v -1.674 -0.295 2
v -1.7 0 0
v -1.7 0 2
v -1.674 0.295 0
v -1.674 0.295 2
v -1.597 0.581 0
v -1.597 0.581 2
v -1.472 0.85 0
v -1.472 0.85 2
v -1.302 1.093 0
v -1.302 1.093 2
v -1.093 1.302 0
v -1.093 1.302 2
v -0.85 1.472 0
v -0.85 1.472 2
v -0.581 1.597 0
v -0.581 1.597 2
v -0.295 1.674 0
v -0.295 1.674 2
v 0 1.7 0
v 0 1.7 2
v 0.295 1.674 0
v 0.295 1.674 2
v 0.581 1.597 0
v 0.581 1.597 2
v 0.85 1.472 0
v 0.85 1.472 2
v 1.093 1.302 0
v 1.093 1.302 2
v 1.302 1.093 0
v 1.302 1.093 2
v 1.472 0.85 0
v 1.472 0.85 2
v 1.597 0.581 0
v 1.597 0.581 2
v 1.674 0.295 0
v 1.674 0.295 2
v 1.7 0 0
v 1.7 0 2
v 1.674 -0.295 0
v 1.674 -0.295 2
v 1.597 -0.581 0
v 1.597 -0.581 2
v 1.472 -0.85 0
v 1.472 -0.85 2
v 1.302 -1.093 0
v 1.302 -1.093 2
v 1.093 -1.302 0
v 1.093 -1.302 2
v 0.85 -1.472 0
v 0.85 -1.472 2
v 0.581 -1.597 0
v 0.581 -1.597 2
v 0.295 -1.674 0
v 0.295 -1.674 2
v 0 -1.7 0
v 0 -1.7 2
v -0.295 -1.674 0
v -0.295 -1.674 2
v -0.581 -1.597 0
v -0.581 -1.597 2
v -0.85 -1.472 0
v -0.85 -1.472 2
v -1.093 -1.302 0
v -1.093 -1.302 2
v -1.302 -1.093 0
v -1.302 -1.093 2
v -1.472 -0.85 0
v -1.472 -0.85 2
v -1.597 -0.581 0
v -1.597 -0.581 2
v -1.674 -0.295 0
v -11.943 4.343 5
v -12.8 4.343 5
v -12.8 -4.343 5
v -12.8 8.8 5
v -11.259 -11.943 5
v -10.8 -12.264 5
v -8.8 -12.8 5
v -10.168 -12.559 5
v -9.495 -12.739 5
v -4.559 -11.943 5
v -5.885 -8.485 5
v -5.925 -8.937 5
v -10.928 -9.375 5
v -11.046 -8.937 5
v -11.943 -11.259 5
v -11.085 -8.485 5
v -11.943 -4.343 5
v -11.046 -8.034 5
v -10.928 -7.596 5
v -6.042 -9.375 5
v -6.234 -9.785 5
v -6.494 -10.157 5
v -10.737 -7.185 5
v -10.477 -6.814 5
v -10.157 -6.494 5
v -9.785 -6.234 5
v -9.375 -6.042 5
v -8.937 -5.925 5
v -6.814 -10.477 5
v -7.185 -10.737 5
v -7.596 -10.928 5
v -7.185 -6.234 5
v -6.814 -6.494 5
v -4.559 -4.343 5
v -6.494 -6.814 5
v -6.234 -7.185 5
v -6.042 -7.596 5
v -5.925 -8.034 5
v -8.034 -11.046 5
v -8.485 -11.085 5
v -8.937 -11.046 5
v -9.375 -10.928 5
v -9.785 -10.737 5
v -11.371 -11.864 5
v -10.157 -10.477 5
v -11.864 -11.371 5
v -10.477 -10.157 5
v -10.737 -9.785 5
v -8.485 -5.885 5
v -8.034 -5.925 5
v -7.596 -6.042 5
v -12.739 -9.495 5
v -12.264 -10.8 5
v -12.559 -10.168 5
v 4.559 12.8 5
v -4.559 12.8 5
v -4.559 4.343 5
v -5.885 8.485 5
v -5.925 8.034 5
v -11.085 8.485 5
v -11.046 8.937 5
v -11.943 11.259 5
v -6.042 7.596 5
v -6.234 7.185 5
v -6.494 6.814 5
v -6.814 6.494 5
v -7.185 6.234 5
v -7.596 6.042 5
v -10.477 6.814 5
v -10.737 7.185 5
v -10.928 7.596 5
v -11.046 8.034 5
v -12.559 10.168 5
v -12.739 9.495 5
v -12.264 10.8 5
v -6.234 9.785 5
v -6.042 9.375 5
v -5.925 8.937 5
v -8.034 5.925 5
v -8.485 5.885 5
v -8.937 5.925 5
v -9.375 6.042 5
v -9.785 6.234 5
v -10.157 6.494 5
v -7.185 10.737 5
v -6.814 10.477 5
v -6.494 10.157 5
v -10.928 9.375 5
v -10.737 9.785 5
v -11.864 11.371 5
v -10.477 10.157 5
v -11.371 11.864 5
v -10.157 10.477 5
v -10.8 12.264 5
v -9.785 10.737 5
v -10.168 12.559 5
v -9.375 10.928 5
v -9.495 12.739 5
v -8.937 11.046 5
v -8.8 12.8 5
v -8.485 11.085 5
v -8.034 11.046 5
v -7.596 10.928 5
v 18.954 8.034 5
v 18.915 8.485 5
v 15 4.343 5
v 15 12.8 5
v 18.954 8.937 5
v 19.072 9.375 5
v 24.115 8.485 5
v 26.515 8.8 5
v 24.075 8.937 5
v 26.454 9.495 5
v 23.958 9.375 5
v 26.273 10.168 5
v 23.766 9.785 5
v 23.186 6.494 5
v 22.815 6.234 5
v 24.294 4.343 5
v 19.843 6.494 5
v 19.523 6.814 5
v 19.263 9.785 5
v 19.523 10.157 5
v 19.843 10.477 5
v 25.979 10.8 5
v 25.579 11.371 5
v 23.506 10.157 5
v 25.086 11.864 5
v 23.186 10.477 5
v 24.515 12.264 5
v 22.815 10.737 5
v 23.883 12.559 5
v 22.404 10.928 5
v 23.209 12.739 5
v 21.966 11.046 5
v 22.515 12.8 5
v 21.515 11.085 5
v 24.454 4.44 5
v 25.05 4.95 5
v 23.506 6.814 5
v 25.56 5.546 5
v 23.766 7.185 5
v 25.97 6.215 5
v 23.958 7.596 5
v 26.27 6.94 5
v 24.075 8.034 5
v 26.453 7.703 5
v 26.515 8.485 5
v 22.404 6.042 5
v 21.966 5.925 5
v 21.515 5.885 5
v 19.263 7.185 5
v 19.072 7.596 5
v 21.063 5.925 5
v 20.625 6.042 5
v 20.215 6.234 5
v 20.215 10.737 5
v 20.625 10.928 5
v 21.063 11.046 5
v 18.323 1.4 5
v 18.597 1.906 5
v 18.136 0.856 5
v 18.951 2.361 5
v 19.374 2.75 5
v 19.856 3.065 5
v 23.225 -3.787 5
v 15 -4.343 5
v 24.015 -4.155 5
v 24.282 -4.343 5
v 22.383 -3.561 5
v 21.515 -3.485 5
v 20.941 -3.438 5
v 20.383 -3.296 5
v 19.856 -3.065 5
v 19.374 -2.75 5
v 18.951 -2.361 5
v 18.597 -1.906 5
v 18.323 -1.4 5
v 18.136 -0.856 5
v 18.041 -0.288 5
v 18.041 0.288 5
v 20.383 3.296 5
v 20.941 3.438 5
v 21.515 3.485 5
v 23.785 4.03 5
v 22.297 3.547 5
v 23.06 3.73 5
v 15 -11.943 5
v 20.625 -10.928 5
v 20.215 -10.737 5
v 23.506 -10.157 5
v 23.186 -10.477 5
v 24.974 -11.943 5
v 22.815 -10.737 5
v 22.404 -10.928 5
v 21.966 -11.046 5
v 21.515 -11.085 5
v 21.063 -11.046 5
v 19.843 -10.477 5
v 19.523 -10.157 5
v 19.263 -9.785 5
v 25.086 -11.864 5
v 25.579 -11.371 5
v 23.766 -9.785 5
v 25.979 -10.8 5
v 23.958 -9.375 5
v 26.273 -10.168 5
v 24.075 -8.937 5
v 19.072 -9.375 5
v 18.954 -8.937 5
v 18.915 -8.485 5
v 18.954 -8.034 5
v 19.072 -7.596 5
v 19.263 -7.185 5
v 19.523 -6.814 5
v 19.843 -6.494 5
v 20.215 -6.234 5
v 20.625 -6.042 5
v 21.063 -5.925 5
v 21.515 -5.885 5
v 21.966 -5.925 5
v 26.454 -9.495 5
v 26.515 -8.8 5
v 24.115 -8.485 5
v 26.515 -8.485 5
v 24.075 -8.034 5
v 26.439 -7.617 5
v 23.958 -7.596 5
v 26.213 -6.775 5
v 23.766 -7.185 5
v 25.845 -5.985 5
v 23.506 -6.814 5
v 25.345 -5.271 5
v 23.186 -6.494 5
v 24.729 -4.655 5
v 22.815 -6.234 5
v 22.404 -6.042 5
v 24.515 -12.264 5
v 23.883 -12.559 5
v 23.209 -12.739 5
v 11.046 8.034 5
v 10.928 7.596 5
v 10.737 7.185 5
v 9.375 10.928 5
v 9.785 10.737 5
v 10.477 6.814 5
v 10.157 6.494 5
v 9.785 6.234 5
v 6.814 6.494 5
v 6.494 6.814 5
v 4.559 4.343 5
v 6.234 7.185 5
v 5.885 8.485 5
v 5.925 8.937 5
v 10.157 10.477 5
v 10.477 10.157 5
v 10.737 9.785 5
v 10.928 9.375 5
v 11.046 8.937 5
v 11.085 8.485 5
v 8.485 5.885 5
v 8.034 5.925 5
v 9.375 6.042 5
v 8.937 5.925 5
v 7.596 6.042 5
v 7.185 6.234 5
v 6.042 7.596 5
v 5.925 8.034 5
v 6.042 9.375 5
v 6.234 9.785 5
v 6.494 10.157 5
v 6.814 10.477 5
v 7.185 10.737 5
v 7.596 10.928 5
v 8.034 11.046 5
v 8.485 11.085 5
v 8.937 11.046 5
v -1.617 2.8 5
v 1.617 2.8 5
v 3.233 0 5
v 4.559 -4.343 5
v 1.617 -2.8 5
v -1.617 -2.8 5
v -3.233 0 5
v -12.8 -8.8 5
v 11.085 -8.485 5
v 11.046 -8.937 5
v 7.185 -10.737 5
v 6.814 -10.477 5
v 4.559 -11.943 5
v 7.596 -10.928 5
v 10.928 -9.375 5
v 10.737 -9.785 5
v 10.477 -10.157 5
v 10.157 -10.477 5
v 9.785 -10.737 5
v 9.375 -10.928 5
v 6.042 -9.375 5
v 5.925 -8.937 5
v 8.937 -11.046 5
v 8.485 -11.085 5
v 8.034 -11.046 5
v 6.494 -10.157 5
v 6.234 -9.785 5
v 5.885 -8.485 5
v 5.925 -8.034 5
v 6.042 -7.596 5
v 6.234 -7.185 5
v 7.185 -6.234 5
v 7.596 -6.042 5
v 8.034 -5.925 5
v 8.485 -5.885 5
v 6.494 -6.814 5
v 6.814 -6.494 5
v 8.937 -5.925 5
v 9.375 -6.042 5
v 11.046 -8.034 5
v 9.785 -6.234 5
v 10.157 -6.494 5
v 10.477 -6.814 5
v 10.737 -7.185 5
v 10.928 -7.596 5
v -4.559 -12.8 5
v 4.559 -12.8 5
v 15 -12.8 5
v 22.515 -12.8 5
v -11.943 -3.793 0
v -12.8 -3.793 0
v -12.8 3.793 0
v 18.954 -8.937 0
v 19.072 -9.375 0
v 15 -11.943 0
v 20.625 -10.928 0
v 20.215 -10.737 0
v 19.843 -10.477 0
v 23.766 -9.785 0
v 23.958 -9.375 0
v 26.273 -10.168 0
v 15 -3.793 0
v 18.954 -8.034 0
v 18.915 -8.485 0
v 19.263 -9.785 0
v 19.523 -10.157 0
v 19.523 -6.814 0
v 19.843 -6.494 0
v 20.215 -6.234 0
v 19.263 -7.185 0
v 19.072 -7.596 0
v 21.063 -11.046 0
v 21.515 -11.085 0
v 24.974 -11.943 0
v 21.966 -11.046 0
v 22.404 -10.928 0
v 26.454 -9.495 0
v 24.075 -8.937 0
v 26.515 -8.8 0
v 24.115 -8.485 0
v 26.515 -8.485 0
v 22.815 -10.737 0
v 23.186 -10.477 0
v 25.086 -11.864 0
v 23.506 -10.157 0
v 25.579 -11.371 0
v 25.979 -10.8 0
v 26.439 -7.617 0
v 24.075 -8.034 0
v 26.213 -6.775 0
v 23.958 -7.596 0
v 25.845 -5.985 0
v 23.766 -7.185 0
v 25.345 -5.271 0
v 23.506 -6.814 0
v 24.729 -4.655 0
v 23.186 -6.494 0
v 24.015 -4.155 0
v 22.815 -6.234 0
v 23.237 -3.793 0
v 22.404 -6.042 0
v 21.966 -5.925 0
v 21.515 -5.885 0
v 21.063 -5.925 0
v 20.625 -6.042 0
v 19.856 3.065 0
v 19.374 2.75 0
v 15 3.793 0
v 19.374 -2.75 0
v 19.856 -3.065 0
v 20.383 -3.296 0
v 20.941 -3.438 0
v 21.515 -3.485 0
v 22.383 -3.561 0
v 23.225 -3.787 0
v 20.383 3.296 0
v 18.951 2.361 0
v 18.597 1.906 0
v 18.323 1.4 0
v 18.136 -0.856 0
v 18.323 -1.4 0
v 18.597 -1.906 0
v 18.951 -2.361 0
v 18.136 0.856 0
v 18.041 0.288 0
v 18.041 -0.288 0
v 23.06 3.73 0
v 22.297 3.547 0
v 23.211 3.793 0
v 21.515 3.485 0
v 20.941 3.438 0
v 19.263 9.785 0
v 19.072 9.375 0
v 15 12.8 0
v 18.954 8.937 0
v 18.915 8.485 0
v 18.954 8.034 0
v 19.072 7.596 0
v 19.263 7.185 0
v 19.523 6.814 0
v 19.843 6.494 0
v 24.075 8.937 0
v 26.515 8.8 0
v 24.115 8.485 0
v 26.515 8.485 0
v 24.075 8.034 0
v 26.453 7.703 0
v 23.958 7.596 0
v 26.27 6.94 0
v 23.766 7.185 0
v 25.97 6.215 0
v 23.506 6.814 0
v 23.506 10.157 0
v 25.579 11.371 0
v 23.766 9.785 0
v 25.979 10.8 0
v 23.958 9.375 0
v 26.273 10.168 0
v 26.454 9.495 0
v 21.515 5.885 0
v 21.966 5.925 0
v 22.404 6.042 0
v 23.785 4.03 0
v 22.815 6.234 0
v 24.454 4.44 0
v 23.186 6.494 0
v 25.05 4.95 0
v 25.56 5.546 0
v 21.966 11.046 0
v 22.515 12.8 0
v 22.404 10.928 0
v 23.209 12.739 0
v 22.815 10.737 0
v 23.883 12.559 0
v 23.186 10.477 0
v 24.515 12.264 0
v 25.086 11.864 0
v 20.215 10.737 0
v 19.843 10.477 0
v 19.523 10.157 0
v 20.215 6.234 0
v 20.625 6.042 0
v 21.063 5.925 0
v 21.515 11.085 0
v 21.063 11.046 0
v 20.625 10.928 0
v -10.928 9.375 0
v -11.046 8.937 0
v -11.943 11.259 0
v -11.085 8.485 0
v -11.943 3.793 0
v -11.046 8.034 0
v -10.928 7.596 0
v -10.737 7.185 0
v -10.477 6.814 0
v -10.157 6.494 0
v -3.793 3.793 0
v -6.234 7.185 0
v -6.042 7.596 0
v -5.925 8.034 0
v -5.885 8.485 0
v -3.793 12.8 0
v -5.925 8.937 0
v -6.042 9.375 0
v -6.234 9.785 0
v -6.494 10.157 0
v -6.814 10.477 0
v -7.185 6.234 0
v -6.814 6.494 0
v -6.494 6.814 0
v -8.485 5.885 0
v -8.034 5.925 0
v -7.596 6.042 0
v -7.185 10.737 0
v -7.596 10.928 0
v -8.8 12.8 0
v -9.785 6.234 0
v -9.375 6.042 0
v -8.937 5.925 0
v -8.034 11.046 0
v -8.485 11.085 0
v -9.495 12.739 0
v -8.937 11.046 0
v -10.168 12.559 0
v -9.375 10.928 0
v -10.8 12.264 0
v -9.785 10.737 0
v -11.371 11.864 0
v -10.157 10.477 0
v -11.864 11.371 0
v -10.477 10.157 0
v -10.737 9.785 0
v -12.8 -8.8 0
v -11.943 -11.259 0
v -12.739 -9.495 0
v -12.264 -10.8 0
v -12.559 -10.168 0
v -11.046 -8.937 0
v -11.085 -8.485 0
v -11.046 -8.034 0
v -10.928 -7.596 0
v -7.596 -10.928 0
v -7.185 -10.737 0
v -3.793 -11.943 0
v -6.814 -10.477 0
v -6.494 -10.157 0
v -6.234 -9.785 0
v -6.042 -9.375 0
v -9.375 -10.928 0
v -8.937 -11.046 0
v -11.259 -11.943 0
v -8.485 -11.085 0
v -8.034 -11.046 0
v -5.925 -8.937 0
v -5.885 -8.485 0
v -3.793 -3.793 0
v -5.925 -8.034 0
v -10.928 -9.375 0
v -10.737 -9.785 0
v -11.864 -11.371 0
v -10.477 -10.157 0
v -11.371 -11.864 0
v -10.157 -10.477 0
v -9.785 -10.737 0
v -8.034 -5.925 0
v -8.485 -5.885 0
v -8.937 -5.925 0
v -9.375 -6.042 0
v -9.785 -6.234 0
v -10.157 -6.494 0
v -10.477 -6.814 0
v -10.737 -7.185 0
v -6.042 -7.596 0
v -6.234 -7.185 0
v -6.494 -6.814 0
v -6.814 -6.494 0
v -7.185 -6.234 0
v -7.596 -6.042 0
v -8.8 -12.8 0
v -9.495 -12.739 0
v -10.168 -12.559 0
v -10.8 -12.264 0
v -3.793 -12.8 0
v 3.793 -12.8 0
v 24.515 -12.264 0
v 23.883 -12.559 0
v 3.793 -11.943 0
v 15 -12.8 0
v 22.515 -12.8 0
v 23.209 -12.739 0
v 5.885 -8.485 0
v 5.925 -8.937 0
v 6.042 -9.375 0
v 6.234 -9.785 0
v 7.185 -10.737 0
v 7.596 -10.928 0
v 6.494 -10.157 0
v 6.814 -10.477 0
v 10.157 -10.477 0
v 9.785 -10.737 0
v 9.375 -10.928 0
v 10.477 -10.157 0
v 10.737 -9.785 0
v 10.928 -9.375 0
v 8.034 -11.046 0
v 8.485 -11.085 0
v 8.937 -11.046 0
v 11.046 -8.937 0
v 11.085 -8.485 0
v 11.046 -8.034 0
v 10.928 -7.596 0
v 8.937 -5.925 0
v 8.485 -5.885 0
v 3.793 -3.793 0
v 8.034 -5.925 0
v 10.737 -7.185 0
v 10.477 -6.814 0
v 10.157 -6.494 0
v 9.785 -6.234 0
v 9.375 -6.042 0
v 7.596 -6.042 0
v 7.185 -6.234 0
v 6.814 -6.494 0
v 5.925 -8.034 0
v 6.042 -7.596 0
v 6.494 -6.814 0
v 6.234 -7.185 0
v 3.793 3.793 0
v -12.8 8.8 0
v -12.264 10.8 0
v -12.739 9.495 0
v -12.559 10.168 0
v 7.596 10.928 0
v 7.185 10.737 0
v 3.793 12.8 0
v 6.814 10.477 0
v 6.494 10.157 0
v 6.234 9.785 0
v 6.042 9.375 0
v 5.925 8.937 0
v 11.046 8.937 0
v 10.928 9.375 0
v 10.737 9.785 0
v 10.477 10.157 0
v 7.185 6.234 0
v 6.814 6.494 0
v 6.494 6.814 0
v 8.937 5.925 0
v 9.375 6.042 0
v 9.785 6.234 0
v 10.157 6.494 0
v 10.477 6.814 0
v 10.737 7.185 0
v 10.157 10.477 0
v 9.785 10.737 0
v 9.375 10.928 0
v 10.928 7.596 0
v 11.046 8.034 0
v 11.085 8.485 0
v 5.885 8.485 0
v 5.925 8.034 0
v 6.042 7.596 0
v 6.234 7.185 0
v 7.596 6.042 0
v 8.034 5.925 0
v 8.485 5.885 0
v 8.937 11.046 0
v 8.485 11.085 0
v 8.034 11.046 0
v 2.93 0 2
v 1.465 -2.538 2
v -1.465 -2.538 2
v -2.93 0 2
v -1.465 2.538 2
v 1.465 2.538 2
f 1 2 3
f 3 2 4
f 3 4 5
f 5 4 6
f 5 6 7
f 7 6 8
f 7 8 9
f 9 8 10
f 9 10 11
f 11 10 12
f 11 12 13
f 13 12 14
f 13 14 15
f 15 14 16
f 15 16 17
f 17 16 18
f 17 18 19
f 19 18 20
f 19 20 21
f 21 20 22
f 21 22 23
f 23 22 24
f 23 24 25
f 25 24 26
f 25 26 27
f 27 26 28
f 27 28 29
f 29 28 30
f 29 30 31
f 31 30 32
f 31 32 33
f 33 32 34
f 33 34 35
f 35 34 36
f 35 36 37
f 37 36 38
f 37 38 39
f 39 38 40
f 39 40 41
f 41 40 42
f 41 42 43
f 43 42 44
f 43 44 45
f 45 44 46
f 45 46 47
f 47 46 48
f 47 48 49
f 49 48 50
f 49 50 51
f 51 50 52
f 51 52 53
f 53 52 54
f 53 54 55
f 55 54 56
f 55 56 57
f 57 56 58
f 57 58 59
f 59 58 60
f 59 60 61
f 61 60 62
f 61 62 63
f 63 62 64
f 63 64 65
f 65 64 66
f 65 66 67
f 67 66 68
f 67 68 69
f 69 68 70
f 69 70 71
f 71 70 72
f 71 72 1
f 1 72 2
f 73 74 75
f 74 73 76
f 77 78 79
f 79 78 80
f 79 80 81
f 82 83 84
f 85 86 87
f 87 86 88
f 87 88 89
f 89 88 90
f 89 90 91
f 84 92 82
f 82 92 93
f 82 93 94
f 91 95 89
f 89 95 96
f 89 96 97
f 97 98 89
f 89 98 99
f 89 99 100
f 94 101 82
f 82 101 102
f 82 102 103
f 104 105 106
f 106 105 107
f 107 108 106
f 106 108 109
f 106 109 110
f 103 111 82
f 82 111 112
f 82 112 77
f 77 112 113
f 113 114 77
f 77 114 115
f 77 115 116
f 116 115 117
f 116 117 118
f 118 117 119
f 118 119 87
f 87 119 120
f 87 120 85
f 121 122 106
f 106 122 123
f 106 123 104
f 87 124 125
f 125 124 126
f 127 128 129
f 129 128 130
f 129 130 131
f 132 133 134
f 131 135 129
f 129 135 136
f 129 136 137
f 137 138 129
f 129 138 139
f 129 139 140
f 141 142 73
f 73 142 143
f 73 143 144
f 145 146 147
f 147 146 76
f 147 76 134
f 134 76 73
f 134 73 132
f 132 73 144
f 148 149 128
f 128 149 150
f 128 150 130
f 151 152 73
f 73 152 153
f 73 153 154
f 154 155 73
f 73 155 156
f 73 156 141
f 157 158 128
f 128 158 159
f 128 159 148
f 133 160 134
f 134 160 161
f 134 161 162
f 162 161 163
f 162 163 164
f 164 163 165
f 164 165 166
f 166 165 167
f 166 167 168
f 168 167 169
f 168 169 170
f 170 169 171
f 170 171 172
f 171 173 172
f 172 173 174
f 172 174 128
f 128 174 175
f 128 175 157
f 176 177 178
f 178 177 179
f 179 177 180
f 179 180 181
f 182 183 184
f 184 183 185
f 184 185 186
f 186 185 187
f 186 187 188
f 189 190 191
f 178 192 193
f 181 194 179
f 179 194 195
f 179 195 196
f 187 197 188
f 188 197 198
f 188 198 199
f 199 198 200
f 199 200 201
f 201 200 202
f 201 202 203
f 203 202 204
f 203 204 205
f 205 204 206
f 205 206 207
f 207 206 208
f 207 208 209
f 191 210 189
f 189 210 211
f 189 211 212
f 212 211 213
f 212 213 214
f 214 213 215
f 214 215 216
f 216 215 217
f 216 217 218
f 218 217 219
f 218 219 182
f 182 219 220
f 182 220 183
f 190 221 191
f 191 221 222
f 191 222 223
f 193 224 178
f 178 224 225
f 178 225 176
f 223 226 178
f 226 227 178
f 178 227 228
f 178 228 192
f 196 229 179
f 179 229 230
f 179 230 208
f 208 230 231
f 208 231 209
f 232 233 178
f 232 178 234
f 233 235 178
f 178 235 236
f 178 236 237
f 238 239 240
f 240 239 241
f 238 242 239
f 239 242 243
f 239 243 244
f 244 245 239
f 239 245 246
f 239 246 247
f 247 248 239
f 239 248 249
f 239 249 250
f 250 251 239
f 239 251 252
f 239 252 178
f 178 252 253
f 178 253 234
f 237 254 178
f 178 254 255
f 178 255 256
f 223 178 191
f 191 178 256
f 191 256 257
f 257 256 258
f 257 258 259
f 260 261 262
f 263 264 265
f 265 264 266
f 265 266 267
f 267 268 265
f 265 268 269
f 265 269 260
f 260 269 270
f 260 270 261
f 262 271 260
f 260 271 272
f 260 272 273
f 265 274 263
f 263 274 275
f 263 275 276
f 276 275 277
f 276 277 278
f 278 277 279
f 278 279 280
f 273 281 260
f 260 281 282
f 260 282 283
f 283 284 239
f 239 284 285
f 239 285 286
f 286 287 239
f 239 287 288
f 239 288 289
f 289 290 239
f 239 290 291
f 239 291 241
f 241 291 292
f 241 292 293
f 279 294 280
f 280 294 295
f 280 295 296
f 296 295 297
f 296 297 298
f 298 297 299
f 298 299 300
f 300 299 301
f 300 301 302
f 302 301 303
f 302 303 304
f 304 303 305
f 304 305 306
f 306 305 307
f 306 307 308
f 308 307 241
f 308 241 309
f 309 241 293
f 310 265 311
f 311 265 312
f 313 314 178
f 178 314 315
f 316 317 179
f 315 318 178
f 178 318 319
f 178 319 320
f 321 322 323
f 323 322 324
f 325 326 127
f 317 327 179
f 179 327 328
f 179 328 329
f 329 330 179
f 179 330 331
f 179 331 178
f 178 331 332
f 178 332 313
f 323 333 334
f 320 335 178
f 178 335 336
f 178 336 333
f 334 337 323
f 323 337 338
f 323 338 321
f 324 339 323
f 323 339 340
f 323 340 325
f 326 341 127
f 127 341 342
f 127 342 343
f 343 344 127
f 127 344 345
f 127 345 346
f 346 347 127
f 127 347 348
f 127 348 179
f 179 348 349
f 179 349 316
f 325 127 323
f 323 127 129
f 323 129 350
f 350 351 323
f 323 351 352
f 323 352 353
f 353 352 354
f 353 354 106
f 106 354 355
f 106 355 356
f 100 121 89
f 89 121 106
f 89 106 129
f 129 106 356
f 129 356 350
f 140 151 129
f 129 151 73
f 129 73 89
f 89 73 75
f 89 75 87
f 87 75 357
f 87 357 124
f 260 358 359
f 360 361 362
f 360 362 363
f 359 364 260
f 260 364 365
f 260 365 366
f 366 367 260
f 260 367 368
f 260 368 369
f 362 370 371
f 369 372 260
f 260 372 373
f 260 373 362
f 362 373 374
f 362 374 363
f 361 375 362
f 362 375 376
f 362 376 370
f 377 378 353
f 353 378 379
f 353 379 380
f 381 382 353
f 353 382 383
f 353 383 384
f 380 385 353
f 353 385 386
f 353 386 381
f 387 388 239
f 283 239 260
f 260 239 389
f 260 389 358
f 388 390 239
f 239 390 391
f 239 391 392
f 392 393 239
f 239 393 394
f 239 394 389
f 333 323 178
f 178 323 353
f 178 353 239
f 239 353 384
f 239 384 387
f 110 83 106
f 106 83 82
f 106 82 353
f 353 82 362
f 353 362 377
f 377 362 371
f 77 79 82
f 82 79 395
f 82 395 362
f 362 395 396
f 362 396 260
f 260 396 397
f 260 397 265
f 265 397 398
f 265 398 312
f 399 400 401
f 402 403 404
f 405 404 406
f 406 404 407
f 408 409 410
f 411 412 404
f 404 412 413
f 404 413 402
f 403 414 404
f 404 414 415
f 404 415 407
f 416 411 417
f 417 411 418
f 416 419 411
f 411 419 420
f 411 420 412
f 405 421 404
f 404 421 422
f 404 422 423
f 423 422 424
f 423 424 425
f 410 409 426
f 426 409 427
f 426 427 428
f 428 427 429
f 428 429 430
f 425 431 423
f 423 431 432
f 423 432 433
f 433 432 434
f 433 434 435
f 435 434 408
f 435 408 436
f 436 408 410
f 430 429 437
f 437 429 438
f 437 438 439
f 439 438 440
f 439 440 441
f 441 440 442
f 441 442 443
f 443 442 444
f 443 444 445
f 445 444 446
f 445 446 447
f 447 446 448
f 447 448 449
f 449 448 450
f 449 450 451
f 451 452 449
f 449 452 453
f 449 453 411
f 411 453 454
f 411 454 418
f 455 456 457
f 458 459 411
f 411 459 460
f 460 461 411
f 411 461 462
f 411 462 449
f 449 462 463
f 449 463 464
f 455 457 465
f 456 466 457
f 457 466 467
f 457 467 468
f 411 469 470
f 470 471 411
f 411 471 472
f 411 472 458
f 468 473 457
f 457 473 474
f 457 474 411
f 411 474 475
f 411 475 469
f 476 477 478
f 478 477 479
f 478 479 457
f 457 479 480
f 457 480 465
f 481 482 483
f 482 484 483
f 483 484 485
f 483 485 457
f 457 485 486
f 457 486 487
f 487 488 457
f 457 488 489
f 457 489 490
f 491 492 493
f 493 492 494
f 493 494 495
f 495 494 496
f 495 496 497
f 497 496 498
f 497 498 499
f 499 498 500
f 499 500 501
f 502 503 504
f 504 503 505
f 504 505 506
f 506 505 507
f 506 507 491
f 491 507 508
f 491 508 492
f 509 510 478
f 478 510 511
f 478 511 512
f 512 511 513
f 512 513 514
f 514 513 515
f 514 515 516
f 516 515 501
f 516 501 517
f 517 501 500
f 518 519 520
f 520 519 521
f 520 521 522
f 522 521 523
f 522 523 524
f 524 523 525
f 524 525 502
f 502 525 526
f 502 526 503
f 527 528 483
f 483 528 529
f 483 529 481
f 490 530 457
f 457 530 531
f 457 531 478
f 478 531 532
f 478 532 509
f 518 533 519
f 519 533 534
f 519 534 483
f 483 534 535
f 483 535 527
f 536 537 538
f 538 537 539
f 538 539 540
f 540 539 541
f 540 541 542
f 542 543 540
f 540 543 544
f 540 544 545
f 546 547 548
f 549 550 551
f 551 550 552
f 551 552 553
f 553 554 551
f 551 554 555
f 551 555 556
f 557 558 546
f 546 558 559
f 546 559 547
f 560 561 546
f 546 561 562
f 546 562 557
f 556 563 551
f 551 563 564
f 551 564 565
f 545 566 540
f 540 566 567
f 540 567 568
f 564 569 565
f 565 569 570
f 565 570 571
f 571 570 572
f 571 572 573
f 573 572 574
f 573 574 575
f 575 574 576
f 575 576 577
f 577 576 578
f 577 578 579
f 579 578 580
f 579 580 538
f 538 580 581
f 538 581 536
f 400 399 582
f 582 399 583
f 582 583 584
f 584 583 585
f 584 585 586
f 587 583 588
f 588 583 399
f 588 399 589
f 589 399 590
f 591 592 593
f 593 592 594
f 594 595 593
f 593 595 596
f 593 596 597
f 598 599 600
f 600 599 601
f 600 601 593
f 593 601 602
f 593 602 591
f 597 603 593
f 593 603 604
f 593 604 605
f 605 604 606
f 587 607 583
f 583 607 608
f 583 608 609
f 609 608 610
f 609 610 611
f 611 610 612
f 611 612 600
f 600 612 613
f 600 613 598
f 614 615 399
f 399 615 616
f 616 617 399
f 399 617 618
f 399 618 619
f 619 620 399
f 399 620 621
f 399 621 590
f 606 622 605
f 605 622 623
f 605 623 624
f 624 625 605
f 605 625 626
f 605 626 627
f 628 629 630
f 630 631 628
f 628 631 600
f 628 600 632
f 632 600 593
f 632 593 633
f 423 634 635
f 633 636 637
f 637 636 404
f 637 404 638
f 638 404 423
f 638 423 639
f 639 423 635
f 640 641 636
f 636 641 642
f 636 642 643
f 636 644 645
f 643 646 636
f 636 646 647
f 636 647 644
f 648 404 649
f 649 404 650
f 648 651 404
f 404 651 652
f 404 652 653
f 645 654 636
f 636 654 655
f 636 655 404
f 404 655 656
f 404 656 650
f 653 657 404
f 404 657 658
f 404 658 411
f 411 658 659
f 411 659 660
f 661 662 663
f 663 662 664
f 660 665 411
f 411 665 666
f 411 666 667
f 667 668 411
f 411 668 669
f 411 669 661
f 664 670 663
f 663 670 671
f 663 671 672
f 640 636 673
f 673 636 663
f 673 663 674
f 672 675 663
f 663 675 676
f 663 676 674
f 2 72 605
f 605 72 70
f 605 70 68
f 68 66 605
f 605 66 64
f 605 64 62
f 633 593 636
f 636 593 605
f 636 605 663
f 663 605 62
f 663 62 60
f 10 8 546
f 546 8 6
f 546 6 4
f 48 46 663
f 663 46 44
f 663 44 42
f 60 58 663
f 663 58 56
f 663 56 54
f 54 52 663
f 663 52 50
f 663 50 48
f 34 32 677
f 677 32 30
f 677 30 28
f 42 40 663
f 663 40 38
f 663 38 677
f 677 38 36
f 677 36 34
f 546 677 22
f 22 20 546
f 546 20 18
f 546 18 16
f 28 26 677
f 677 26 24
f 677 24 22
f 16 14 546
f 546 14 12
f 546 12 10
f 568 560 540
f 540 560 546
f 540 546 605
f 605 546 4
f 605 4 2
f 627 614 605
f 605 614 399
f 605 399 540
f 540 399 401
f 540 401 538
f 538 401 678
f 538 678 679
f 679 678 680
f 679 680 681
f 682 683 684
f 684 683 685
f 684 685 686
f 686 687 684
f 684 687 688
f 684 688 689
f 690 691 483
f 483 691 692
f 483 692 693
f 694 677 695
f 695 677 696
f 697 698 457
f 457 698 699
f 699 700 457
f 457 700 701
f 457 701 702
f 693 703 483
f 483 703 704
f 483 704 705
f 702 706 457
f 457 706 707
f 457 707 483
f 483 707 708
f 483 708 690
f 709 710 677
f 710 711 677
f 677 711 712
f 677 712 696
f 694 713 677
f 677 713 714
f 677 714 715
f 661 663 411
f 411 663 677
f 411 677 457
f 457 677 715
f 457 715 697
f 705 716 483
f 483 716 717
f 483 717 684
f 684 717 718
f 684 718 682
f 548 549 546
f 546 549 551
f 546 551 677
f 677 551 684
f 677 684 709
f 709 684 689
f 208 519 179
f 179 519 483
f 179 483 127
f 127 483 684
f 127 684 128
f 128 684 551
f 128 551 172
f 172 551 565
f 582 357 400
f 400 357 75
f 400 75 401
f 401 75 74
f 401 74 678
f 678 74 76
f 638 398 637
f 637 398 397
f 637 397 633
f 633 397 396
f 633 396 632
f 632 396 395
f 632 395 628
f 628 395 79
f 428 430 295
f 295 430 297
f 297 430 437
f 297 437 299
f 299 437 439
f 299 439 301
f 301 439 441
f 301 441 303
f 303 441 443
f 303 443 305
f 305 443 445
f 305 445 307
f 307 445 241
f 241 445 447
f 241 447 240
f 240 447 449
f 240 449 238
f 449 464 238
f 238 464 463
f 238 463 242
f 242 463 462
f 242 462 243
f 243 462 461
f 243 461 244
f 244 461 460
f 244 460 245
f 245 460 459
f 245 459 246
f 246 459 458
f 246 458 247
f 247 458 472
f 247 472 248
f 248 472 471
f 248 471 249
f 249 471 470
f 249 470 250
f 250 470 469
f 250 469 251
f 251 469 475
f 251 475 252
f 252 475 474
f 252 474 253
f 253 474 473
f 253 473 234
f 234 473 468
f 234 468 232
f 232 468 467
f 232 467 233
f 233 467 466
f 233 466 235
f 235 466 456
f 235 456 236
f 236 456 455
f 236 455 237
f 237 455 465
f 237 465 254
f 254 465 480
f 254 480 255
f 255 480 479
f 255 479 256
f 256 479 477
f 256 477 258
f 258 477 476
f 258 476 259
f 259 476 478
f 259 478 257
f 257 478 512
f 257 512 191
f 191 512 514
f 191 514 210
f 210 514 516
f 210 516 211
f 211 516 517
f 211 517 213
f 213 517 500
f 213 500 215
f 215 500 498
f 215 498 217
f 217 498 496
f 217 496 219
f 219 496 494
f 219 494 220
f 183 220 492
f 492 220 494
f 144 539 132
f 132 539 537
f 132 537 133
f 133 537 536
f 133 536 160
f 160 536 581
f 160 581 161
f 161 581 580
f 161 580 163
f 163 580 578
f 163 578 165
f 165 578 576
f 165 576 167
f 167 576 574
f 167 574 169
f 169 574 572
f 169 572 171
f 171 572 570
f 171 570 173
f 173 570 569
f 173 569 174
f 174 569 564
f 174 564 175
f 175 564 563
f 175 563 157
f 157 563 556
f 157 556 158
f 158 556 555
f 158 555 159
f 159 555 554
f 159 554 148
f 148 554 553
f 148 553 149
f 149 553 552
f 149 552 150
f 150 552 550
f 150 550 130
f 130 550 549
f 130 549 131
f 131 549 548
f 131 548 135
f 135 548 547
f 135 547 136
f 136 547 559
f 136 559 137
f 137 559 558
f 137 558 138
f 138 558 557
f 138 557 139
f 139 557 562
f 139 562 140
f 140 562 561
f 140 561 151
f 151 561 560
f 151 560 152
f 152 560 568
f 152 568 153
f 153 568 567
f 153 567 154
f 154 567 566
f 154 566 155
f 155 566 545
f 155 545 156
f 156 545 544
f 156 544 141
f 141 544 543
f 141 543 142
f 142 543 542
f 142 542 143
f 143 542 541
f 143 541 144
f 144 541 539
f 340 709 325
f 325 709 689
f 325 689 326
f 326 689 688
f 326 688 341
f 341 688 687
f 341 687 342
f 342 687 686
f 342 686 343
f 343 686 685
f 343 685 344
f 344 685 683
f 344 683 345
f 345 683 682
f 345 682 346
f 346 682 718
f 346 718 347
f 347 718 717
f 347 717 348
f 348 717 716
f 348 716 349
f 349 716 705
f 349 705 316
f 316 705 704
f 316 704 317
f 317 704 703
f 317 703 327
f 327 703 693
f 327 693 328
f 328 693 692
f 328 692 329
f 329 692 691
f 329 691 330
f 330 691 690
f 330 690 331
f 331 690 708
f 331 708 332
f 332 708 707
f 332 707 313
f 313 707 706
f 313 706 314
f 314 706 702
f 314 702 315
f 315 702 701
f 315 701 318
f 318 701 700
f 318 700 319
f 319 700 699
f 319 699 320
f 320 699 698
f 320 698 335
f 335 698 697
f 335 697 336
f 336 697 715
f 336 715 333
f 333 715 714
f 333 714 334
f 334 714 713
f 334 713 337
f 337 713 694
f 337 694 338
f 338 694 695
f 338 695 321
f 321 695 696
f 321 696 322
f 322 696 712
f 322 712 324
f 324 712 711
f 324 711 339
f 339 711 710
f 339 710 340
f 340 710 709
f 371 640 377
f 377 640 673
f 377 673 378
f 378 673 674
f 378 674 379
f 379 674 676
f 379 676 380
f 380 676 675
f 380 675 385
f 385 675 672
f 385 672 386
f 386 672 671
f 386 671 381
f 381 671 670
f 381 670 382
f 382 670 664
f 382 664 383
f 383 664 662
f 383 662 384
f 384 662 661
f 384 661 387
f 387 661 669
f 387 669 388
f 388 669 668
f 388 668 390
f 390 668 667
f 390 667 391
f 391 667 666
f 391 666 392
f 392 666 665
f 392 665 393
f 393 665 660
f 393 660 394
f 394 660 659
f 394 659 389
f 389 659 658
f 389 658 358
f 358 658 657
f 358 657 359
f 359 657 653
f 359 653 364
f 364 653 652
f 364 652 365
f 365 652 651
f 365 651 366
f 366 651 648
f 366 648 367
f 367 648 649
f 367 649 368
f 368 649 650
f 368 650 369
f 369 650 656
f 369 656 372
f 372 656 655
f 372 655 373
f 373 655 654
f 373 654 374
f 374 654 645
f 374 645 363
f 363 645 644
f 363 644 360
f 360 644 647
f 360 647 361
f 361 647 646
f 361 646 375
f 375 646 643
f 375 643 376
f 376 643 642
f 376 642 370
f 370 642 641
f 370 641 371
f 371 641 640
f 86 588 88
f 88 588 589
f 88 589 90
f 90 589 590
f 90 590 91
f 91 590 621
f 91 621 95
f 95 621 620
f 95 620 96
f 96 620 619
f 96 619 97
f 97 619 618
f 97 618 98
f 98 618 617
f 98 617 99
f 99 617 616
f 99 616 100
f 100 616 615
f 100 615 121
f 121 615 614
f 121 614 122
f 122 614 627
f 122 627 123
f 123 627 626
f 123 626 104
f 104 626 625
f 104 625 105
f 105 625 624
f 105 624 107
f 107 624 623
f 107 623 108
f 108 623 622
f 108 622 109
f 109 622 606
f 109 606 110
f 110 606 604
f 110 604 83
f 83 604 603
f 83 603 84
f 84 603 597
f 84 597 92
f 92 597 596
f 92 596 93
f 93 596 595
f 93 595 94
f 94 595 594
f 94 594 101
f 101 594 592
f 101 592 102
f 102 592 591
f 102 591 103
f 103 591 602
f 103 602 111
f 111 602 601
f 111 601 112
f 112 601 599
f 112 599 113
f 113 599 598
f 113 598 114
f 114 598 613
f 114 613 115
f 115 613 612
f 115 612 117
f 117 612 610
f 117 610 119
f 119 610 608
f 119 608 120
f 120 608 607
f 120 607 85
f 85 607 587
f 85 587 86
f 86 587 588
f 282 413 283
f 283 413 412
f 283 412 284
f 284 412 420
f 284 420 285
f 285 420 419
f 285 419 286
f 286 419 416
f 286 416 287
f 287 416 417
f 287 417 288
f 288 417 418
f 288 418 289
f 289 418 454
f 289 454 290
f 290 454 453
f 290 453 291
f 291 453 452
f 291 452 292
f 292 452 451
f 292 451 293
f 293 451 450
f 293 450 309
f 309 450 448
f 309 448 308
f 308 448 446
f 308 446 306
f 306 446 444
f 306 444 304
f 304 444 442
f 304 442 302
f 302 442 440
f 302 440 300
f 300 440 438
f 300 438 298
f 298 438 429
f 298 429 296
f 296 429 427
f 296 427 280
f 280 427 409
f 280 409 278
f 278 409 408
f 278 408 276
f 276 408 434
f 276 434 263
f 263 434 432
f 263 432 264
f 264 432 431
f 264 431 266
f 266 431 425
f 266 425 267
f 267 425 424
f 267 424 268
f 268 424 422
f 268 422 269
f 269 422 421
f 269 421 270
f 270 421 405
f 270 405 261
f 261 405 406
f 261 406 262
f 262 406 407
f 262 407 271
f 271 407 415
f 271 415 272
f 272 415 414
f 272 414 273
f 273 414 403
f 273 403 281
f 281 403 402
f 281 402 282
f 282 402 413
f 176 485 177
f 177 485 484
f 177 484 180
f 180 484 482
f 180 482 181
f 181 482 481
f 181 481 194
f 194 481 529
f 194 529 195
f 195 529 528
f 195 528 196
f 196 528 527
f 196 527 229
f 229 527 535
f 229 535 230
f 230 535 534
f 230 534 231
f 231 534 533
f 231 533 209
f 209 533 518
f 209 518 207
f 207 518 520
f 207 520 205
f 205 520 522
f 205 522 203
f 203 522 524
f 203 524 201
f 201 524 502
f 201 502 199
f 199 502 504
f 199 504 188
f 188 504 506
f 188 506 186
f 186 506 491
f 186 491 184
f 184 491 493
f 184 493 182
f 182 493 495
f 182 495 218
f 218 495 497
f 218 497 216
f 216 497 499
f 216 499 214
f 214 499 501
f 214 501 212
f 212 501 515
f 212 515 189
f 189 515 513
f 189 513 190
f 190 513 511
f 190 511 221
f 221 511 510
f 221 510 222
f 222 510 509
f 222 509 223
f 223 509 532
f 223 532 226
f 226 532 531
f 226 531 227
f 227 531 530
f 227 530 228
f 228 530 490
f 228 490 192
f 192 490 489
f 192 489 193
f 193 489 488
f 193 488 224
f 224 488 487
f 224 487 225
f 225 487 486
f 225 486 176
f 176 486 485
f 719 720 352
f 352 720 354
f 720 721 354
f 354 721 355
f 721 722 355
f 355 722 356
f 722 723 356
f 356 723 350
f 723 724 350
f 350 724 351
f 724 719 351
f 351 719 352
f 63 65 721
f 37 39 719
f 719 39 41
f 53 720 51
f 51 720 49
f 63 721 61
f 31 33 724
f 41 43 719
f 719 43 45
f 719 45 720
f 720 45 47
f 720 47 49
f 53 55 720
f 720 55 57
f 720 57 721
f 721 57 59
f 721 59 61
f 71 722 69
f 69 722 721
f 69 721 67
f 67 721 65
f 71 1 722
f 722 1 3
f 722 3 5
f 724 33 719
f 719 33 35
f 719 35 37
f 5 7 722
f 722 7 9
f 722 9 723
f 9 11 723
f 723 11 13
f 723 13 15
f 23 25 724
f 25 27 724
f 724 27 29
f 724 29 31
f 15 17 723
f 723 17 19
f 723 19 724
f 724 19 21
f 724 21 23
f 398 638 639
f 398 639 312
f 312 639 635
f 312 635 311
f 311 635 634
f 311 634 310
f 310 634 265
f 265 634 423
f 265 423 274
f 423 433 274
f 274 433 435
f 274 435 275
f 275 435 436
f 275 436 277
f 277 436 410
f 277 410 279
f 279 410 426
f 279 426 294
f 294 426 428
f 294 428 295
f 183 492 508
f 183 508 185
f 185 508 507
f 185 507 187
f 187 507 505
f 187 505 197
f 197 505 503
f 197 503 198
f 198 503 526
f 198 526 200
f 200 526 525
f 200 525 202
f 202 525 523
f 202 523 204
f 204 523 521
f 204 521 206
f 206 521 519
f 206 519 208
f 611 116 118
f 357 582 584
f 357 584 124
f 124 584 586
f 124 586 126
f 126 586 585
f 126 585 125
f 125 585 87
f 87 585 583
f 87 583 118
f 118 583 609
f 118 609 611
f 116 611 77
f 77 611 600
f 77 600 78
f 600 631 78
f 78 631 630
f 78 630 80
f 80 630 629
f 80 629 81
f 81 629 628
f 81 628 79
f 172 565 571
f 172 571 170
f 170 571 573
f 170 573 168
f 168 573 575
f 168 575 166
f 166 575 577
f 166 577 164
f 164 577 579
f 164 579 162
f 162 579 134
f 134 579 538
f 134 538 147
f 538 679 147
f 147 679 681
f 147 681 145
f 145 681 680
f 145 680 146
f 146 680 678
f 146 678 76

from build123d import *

# Parameters (mm, degrees)
ESQUISSE1_R             = 1.7
ESQUISSE1_R_2           = 2.6
BOSS_EXTRU_1_DEPTH      = 5
ENL_V_MAT_EXTRU_1_DEPTH = 3
ENL_V_MAT_EXTRU_1_TAPER = 5
CONG_1_R                = 4


with BuildPart() as part:
    # Esquisse1 → Boss.-Extru.1 (new body)
    with BuildSketch(Plane.XY):
        with BuildLine():
            Line((-12.8, -12.8), (12.8, -12.8))
            Line((12.8, -12.8), (26.514718626, -12.8))
            Line((26.514718626, -12.8), (26.514718626, -8.485281374))
            ThreePointArc((26.514718626, -8.485281374), (25.050252532, -4.949747468), (21.514718626, -3.485281374))
            ThreePointArc((21.514718626, -3.485281374), (18.029437252, 0), (21.514718626, 3.485281374))
            ThreePointArc((21.514718626, 3.485281374), (25.050252532, 4.949747468), (26.514718626, 8.485281374))
            Line((26.514718626, 8.485281374), (26.514718626, 12.8))
            Line((26.514718626, 12.8), (12.8, 12.8))
            Line((12.8, 12.8), (-12.8, 12.8))
            Line((-12.8, 12.8), (-12.8, -12.8))
        make_face()
        Circle(ESQUISSE1_R, mode=Mode.SUBTRACT)
        with Locations((-8.485281374, 8.485281374)):
            Circle(ESQUISSE1_R_2, mode=Mode.SUBTRACT)
        with Locations((8.485281374, 8.485281374)):
            Circle(ESQUISSE1_R_2, mode=Mode.SUBTRACT)
        with Locations((8.485281374, -8.485281374)):
            Circle(ESQUISSE1_R_2, mode=Mode.SUBTRACT)
        with Locations((-8.485281374, -8.485281374)):
            Circle(ESQUISSE1_R_2, mode=Mode.SUBTRACT)
        with Locations((21.514718626, -8.485281374)):
            Circle(ESQUISSE1_R_2, mode=Mode.SUBTRACT)
        with Locations((21.514718626, 8.485281374)):
            Circle(ESQUISSE1_R_2, mode=Mode.SUBTRACT)
    extrude(amount=BOSS_EXTRU_1_DEPTH)

    # Esquisse2 → Enlèv. mat.-Extru.1 (cut)
    with BuildSketch(Plane.XY.offset(5)):
        Polygon((3.233161507, 0), (1.616580754, 2.8), (-1.616580754, 2.8), (-3.233161507, 0), (-1.616580754, -2.8), (1.616580754, -2.8), align=None)
    extrude(amount=-ENL_V_MAT_EXTRU_1_DEPTH, taper=ENL_V_MAT_EXTRU_1_TAPER, mode=Mode.SUBTRACT)

    # Congé1
    cong_1_edges = [part.edges().sort_by_distance(p)[0] for p in [
        (26.514718626, 12.8, 2.5),
        (26.514718626, -12.8, 2.5),
        (-12.8, -12.8, 2.5),
        (-12.8, 12.8, 2.5),
    ]]
    fillet(cong_1_edges, radius=CONG_1_R)


solid = part.part
